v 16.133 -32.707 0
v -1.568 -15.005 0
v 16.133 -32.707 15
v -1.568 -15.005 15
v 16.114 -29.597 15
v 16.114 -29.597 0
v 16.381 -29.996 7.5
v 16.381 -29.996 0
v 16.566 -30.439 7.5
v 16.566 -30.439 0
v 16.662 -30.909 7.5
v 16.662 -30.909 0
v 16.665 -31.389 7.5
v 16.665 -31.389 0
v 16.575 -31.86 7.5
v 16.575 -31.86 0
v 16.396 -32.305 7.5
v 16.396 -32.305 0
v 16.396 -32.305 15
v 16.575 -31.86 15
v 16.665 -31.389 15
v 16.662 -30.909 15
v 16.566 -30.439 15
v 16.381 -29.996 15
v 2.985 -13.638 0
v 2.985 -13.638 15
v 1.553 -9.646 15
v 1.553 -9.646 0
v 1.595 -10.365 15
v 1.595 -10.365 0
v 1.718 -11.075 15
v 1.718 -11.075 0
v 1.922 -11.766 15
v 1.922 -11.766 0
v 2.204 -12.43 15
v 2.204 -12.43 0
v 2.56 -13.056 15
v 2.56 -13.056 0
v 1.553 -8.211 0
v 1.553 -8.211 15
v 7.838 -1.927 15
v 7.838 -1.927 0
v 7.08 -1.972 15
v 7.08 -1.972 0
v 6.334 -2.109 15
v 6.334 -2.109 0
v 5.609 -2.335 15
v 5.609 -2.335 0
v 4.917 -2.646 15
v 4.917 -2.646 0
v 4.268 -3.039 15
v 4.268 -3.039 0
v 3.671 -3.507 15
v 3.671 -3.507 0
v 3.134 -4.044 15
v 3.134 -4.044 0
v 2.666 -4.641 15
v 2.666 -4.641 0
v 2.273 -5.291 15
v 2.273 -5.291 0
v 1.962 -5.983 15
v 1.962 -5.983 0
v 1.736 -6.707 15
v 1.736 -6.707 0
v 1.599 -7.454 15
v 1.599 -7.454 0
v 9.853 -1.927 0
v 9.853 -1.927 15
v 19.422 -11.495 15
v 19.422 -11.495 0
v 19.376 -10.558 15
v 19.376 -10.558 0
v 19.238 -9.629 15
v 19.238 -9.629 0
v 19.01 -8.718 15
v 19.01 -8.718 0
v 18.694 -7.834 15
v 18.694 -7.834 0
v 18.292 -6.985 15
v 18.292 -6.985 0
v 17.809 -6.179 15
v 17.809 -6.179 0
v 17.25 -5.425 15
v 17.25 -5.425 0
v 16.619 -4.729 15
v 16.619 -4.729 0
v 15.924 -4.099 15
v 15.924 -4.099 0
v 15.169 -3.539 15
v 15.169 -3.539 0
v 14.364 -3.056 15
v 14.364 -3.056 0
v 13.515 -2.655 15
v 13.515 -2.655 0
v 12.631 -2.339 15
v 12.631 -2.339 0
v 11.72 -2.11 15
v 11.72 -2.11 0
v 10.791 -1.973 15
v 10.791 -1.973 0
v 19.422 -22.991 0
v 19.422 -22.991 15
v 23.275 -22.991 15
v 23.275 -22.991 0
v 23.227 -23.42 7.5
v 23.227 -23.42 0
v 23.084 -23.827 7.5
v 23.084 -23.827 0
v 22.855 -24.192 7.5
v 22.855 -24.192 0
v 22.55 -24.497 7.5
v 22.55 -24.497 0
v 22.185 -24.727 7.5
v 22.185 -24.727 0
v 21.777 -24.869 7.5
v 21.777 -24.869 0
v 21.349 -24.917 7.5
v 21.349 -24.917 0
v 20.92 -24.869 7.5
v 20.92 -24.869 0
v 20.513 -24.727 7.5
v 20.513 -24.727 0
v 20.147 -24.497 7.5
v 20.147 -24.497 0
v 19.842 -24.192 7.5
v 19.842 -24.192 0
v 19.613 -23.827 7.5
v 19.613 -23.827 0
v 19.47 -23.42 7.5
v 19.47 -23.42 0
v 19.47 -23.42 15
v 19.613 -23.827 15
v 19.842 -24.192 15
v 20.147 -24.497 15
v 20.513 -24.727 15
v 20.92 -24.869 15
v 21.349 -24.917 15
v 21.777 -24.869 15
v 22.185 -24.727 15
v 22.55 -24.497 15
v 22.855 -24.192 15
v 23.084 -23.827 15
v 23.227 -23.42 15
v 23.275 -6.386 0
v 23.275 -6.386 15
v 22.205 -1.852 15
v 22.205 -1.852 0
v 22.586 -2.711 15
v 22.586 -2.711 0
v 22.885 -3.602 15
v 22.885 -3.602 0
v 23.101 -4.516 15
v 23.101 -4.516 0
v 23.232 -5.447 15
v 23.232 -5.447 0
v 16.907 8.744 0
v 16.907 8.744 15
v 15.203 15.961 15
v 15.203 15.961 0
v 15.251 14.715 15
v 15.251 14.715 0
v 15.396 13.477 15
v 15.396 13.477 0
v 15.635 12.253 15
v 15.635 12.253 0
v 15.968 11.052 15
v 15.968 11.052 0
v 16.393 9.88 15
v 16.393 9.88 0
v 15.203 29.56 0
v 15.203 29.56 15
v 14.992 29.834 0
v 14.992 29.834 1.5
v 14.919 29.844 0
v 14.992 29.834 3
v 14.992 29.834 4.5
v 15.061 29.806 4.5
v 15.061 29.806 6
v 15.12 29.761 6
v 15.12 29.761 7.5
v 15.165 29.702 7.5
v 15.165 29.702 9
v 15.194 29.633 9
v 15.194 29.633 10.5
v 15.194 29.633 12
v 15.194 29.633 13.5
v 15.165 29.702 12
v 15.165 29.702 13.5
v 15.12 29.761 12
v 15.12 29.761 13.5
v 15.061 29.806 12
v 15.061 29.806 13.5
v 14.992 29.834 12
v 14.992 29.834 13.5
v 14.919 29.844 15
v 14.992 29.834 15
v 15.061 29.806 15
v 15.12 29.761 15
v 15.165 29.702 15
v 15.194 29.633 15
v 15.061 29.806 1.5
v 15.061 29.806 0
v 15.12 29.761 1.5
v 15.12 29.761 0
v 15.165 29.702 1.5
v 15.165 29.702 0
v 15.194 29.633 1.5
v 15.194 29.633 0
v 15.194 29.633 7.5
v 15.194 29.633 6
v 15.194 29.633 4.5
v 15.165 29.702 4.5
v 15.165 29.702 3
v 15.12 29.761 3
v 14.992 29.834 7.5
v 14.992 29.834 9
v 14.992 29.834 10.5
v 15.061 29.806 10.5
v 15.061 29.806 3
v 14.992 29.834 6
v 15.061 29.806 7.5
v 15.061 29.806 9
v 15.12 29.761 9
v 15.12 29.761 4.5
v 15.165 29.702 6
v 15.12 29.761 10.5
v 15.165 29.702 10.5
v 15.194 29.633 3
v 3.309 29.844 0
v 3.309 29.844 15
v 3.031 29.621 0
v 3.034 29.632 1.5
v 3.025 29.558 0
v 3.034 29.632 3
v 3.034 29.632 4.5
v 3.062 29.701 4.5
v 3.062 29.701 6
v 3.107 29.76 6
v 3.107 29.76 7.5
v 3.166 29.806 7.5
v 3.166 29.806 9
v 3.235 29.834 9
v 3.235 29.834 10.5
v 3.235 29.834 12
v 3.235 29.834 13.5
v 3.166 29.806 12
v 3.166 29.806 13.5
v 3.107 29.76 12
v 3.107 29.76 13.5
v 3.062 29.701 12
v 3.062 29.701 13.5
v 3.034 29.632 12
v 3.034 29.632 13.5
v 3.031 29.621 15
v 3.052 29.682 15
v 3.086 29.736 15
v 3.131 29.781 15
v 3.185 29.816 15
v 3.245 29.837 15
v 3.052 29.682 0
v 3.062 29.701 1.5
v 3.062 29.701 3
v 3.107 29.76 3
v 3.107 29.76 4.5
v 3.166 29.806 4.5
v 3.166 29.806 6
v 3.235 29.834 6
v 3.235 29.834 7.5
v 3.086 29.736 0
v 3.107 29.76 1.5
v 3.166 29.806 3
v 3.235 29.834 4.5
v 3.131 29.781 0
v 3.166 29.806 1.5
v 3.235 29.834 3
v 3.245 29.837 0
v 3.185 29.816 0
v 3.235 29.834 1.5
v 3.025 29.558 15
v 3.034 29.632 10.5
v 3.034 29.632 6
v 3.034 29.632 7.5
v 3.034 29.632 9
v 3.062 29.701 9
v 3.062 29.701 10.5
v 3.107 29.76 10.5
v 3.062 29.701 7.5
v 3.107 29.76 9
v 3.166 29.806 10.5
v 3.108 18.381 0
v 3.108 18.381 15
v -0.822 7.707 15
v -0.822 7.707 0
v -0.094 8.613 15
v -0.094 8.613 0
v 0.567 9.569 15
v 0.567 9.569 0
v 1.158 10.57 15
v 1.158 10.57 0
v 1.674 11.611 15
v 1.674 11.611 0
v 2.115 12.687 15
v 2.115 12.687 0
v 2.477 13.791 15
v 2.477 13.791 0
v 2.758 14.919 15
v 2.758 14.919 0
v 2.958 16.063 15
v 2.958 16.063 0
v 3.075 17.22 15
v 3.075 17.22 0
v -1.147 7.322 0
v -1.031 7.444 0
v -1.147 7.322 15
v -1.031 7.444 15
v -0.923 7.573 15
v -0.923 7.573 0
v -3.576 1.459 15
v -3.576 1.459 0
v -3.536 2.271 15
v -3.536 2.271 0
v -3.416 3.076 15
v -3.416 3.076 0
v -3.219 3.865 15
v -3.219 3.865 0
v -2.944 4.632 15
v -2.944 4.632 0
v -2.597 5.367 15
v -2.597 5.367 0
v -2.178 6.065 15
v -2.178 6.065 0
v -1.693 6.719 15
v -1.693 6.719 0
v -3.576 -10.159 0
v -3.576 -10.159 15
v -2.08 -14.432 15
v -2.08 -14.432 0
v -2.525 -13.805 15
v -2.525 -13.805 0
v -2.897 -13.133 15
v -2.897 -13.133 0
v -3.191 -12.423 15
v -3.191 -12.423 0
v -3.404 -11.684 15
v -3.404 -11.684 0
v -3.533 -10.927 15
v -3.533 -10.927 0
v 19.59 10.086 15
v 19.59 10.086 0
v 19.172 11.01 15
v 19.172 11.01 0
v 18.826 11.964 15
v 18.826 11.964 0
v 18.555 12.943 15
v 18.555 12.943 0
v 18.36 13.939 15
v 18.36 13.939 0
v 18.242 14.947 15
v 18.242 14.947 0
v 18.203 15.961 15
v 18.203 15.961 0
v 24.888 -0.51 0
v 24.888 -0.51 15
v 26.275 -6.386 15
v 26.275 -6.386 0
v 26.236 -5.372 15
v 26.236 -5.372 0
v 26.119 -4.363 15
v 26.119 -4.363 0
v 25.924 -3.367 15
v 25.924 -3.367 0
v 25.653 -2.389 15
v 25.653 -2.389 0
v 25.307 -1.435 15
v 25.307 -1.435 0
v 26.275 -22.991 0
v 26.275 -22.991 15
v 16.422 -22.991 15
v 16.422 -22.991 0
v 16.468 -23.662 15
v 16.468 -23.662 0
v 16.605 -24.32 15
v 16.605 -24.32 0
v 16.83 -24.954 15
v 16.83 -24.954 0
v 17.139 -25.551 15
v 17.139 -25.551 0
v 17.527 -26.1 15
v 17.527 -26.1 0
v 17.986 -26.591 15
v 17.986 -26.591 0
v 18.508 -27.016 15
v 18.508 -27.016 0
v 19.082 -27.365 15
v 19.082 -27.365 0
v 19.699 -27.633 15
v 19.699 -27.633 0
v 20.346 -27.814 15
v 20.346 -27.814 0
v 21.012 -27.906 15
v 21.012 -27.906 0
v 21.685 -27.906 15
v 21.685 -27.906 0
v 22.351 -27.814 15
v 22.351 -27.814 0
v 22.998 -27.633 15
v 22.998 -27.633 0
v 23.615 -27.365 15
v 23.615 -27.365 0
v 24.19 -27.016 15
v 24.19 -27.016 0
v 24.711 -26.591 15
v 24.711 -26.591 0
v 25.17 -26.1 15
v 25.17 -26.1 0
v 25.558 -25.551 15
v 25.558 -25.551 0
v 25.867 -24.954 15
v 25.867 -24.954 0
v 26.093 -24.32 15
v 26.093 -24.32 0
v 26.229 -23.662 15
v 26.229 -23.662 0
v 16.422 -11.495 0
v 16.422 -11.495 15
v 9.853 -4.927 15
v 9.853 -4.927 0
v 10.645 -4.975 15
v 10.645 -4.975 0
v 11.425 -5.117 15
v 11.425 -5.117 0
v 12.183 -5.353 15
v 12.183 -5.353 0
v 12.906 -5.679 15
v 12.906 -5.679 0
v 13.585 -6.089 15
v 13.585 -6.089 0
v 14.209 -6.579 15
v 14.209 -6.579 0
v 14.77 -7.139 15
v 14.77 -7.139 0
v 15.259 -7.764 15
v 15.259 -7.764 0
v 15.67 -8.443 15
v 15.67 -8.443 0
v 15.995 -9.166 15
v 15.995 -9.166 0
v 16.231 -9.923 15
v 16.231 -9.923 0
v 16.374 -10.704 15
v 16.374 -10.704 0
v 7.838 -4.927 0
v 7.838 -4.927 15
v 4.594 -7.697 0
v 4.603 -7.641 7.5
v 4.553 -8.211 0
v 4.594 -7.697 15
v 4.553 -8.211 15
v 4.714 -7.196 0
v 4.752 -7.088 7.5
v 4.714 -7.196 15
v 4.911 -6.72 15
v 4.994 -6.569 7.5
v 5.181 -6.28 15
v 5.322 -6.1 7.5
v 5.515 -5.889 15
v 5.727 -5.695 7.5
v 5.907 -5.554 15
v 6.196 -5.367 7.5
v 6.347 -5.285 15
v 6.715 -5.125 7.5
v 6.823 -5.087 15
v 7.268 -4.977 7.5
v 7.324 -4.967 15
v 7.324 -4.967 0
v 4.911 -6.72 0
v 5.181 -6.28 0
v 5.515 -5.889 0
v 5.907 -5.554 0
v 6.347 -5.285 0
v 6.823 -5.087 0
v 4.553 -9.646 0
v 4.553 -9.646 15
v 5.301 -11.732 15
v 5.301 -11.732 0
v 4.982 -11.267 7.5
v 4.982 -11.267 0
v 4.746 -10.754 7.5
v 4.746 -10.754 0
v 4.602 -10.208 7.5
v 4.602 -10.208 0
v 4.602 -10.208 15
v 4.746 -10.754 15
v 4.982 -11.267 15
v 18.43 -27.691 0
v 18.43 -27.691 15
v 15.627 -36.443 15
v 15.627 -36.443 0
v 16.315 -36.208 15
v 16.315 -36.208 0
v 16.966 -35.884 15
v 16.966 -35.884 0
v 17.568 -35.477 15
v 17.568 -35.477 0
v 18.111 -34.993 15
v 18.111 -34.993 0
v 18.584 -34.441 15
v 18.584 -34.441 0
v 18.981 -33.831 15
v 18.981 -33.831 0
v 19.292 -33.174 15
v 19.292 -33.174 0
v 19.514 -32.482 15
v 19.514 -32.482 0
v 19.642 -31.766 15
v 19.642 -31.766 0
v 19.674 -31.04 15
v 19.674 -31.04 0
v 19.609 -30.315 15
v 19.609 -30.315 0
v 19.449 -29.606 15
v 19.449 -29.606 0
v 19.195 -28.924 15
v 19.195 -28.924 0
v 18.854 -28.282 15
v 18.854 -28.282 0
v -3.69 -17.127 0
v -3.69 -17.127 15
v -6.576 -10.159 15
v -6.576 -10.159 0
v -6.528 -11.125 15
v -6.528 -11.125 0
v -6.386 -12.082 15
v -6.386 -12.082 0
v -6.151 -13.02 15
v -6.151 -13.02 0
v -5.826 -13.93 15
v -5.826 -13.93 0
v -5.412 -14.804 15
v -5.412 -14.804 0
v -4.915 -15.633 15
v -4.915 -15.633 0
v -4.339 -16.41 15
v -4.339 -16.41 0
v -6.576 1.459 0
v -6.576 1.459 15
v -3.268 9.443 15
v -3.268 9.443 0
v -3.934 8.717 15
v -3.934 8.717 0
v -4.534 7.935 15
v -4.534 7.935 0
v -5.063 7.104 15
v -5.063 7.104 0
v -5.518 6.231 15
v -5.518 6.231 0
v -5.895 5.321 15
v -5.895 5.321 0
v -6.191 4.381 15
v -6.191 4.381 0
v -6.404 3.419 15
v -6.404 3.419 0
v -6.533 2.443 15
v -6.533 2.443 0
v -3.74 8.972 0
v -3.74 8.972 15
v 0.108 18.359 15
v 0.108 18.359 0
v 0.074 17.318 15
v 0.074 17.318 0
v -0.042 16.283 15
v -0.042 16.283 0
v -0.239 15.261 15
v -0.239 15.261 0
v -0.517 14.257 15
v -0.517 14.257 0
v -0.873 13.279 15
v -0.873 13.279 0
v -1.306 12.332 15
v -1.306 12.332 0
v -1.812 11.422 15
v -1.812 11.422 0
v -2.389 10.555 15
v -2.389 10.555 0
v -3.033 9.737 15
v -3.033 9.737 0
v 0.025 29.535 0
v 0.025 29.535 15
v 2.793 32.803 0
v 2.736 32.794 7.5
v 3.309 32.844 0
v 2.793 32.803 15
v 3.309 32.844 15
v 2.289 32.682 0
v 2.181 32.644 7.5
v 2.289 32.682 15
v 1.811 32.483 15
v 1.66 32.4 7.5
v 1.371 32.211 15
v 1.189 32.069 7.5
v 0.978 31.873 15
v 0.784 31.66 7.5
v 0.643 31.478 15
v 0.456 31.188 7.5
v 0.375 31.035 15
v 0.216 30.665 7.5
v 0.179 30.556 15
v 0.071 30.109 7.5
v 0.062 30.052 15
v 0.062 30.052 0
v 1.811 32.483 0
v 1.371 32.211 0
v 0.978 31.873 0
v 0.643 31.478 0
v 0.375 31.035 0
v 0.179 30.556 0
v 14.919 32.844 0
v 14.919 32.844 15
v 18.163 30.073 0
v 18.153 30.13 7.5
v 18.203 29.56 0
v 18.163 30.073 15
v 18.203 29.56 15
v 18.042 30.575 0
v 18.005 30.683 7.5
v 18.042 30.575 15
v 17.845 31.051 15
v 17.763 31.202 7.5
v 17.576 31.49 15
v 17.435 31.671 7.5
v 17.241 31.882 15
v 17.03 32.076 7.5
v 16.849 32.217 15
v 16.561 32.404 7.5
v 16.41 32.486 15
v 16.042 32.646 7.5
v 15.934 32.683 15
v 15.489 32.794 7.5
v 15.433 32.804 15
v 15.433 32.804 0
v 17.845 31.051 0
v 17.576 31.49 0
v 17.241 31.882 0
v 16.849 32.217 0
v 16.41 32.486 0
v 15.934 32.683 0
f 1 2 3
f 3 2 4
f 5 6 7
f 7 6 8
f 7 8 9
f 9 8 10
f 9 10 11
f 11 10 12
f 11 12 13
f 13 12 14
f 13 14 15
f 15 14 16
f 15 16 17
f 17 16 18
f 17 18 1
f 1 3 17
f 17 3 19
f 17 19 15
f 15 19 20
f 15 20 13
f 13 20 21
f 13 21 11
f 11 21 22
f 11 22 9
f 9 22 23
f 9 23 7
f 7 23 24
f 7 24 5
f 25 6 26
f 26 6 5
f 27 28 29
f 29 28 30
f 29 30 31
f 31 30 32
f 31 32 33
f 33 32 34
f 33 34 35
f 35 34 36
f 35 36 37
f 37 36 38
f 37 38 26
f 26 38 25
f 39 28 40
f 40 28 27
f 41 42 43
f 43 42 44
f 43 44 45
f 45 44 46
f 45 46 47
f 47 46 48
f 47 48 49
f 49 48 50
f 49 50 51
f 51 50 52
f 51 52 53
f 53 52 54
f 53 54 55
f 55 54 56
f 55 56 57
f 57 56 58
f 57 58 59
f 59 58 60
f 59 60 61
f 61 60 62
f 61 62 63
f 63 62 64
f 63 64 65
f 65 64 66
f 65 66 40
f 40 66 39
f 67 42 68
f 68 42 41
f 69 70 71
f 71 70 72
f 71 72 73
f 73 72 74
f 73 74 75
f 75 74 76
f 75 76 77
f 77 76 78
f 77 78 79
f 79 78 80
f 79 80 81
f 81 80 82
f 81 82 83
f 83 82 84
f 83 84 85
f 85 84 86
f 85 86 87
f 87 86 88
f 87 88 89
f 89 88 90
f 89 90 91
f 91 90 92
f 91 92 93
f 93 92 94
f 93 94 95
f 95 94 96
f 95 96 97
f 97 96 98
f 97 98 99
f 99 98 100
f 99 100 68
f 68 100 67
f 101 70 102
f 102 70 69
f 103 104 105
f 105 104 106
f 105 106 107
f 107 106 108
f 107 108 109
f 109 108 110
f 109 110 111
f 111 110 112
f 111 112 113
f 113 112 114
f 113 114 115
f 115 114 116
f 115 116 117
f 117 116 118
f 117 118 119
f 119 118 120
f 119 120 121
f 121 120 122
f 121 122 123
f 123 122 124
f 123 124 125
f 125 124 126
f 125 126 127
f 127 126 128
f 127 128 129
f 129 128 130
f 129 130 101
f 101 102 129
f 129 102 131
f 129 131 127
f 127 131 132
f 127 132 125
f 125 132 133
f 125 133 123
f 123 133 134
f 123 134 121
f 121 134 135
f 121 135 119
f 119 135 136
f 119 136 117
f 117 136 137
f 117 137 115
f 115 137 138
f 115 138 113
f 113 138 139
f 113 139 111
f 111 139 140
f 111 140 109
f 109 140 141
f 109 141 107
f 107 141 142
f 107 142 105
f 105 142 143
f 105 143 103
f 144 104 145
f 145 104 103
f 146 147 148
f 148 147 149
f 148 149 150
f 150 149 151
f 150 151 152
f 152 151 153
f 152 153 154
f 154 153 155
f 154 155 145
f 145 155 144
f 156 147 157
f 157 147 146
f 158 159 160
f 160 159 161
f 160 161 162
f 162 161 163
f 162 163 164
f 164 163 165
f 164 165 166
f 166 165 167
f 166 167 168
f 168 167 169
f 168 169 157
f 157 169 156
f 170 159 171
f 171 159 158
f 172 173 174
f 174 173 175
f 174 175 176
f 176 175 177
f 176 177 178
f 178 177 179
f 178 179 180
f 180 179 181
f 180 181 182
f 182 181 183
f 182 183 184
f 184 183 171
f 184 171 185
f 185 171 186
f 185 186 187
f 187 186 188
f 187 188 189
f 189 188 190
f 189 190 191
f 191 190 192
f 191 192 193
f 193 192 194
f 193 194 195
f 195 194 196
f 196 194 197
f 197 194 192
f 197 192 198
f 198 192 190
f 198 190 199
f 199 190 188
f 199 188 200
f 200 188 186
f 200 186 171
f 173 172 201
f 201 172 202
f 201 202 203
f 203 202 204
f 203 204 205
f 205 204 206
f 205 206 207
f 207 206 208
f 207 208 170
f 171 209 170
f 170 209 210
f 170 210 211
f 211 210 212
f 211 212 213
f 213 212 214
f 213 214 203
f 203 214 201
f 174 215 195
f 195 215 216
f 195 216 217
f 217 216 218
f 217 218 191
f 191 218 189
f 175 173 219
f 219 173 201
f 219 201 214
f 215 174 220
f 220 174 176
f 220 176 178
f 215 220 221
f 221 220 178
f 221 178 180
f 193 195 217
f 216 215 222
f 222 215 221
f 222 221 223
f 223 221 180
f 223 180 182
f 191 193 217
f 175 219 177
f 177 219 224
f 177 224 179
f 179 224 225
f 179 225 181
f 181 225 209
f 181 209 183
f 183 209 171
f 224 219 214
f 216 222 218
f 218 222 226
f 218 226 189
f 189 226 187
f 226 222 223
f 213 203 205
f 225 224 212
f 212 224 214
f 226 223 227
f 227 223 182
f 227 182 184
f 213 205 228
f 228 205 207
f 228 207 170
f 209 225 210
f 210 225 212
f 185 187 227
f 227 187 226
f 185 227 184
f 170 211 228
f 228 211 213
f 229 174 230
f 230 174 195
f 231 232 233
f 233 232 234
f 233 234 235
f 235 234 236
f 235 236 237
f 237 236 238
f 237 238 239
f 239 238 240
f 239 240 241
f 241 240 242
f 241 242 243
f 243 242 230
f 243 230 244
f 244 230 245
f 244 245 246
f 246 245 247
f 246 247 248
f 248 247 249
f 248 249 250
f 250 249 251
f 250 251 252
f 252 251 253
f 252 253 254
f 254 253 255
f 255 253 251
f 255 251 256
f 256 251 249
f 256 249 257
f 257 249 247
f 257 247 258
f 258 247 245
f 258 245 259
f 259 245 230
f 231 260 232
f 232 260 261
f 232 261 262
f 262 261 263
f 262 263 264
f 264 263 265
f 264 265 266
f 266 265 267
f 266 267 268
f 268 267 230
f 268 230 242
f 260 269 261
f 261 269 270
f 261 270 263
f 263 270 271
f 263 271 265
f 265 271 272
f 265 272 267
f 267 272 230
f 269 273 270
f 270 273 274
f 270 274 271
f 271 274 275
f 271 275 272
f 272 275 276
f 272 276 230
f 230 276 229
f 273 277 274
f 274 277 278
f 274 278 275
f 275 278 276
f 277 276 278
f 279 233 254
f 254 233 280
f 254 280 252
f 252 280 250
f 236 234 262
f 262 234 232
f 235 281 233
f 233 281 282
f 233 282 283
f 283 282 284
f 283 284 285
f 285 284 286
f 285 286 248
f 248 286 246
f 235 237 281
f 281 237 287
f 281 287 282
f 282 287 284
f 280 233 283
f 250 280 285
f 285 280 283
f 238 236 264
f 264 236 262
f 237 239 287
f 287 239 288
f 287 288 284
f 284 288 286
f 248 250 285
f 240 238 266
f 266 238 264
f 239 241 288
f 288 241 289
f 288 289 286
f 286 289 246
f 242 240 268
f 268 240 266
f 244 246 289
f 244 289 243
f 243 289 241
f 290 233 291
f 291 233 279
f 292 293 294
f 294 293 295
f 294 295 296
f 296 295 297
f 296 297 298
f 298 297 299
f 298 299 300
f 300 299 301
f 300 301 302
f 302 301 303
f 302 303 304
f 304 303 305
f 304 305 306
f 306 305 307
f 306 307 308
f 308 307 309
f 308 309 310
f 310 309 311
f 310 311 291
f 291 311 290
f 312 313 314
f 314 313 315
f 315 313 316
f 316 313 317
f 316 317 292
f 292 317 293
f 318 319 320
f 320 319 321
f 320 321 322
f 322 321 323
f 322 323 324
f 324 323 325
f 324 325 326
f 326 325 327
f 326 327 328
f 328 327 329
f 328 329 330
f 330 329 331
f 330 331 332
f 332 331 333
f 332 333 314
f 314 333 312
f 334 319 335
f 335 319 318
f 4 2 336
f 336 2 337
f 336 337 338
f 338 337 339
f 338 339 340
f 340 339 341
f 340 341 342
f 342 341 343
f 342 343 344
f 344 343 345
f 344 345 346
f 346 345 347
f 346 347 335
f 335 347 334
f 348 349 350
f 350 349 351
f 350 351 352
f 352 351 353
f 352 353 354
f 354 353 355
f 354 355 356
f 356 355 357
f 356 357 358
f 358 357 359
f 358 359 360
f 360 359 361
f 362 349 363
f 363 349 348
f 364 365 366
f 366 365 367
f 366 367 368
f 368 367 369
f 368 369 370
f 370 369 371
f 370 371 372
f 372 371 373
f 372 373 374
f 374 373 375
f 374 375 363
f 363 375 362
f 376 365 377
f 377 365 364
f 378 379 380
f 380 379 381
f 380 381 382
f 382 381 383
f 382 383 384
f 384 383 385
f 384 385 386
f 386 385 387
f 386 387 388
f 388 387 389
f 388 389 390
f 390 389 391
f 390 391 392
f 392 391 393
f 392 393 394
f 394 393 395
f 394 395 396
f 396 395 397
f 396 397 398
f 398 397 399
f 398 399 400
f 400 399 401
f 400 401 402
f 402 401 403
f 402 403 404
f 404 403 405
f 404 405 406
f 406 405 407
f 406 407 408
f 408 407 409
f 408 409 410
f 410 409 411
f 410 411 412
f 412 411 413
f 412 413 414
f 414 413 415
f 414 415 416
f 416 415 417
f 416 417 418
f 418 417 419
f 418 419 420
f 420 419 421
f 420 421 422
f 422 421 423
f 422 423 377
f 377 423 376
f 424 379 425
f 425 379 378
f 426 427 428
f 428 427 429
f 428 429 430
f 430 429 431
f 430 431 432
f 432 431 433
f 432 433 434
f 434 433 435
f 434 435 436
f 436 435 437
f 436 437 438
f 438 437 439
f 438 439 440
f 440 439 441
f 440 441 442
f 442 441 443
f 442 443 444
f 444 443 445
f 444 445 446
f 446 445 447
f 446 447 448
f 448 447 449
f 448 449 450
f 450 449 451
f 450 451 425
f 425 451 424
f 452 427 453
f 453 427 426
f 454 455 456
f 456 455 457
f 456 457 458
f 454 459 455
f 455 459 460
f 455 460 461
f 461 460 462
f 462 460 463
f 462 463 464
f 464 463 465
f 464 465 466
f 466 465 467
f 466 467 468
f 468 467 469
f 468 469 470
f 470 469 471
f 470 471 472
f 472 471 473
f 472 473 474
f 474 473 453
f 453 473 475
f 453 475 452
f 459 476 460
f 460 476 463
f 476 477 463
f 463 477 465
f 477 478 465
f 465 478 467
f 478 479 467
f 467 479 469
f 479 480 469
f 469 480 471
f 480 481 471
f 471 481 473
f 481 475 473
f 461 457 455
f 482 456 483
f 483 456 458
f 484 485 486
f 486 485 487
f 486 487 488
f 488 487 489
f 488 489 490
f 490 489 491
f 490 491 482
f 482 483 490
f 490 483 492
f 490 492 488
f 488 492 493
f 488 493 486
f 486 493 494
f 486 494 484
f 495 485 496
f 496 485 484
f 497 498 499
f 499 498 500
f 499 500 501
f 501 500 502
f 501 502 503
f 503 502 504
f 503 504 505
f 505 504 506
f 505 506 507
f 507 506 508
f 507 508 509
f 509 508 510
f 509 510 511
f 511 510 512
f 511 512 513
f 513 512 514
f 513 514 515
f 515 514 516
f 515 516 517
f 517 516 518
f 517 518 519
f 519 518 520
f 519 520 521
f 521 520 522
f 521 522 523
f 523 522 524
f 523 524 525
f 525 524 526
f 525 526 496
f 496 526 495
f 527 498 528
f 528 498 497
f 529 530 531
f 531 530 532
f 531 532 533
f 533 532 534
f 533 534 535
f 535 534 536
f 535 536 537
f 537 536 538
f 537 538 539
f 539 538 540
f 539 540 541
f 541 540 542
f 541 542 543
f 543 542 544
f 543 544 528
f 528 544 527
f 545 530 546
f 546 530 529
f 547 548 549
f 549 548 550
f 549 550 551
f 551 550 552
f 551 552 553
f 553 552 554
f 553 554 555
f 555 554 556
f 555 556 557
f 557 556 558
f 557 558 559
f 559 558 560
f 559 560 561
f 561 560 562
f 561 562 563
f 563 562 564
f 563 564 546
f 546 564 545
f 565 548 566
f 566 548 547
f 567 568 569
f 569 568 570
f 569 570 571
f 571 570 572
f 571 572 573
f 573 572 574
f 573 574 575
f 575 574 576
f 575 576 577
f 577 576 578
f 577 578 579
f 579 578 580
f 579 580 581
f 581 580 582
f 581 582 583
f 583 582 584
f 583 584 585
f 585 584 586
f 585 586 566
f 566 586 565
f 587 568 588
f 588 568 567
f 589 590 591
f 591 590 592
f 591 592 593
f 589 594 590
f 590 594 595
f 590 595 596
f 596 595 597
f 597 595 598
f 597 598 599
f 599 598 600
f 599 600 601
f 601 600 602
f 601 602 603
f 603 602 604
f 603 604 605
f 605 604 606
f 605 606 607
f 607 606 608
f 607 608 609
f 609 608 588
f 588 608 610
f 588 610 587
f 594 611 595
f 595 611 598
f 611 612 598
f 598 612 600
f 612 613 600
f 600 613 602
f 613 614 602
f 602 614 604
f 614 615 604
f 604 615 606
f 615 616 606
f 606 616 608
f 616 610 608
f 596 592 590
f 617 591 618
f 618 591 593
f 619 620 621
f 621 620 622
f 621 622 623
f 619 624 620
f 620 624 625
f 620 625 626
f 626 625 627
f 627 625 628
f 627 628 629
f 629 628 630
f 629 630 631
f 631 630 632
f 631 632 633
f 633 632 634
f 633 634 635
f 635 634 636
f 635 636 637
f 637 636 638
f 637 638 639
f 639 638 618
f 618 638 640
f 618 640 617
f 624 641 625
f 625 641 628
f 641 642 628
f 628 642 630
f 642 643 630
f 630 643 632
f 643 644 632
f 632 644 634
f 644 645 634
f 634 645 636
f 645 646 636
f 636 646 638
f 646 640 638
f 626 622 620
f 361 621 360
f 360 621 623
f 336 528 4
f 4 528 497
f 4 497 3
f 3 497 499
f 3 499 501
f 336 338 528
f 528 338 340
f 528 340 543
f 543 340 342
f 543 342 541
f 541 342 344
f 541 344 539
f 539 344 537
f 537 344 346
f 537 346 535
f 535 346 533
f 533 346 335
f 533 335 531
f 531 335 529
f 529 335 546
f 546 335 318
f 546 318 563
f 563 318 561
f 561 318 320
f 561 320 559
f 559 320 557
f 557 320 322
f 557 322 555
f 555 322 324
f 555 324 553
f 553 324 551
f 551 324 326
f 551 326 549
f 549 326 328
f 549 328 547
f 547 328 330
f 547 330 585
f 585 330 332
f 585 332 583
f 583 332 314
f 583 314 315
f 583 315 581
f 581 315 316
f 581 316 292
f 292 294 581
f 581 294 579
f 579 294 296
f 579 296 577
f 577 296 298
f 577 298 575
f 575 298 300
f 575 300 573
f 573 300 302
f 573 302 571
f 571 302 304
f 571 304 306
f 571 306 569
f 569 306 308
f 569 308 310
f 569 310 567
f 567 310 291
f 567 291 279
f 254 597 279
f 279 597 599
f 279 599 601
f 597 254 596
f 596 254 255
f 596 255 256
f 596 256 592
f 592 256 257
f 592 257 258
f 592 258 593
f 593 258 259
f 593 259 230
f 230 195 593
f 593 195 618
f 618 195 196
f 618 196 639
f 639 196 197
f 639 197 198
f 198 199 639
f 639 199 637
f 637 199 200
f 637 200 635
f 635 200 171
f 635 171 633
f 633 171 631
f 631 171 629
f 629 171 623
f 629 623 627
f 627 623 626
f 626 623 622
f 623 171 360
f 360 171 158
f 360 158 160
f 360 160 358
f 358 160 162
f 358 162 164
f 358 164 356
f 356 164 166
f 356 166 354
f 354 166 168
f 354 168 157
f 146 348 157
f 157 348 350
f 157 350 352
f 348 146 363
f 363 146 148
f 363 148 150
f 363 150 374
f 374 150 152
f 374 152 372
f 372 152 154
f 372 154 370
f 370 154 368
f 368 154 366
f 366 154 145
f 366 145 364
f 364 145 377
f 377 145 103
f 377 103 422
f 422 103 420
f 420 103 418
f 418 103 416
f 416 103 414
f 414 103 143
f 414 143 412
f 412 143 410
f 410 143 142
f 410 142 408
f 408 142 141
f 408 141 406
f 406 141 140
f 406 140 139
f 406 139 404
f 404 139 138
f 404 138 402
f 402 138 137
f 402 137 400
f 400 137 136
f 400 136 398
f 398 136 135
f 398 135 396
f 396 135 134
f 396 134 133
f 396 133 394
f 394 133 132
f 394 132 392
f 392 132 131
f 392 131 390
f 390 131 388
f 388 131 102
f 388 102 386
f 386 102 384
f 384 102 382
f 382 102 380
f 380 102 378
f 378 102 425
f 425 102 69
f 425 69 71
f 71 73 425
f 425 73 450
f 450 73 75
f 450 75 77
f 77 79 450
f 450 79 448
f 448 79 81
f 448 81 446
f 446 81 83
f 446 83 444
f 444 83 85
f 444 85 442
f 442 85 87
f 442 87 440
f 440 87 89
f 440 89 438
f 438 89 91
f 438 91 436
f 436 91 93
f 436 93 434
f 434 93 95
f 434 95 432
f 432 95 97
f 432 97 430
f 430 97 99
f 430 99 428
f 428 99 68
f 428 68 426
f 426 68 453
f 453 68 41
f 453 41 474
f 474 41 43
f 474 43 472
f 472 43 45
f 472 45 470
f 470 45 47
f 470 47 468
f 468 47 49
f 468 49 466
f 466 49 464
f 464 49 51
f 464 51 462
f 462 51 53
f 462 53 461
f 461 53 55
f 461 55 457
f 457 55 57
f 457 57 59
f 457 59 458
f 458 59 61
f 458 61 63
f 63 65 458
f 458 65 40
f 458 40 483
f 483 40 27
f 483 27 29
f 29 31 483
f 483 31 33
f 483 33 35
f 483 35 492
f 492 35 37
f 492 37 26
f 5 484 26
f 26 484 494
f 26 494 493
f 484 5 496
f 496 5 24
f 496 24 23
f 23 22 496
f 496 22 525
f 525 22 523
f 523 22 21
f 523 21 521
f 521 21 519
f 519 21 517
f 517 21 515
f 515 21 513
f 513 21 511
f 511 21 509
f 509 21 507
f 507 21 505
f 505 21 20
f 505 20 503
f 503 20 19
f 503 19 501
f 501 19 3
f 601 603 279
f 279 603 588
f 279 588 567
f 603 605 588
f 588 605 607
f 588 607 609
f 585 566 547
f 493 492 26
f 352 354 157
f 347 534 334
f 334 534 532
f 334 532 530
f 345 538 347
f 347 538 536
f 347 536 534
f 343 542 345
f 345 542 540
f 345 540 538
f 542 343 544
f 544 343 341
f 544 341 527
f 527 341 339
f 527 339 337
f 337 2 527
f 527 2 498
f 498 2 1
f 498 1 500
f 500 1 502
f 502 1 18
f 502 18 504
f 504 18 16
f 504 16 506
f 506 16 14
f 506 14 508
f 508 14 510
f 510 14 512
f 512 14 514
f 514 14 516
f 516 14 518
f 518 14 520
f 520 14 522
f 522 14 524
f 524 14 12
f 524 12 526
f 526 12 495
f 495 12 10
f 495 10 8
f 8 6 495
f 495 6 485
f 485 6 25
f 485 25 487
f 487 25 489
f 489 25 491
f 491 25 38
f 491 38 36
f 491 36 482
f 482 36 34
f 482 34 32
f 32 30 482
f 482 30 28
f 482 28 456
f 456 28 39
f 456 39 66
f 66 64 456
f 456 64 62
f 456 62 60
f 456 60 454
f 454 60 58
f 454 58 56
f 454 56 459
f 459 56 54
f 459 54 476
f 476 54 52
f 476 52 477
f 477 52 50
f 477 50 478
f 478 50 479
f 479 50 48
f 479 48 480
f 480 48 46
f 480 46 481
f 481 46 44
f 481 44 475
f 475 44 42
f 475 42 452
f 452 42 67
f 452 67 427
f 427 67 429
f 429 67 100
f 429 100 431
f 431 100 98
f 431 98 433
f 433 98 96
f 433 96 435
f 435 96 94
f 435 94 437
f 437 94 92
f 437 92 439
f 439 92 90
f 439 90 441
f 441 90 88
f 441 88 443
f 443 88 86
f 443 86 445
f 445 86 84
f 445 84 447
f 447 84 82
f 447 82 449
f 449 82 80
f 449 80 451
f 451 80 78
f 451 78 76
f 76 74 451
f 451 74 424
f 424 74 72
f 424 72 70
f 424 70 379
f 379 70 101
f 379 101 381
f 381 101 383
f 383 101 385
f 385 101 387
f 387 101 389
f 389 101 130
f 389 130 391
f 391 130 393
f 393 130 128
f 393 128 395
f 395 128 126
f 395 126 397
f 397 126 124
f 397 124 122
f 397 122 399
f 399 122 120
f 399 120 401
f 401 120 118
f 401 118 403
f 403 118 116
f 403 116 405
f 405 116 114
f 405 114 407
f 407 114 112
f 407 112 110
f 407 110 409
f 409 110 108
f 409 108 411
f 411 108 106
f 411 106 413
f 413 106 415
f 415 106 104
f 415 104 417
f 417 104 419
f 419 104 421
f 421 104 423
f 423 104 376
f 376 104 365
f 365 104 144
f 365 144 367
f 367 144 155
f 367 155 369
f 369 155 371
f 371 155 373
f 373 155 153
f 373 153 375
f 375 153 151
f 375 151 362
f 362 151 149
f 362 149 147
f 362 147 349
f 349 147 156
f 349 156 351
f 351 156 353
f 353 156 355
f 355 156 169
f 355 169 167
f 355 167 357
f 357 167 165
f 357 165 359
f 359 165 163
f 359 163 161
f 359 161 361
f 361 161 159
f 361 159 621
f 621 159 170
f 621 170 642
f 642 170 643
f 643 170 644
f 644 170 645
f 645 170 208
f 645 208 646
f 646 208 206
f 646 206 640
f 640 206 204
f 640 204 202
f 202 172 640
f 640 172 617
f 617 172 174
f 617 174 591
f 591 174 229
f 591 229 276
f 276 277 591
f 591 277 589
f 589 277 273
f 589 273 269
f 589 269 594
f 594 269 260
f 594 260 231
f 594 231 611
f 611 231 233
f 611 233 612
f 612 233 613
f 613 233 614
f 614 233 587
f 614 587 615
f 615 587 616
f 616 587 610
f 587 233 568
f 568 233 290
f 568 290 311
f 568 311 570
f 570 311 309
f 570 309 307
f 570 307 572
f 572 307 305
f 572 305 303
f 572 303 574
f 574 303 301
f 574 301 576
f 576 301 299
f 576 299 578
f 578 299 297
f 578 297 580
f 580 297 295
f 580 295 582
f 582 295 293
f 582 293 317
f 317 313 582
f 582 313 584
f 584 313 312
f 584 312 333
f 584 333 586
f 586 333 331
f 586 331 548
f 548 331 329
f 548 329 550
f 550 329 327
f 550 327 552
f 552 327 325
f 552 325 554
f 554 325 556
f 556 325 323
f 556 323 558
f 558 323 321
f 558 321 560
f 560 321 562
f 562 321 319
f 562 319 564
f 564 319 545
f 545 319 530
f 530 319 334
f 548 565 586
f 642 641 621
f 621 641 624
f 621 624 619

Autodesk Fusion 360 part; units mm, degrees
sketch "Sketch1" plane through (0, 0, 0) normal (0, 0, 1) x (1, 0, 0)
  line L0 (3.309, 32.844) -> (14.9188, 32.844)
  line L1 (26.2752, -6.3858) -> (26.2752, -22.9908)
  arc A0 (16.422, -22.9908) -> (26.2752, -22.9908) centre (21.3486, -22.9908) ccw
  line L2 (16.422, -22.9908) -> (16.422, -11.4954)
  line L3 (5.3015, -11.7323) -> (18.4305, -27.6914)
  arc A1 (15.6271, -36.4434) -> (18.4305, -27.6914) centre (14.2091, -31.1642) ccw
  line L4 (15.6271, -36.4434) -> (-3.6897, -17.1266)
  line L5 (-6.5756, -10.1593) -> (-6.5756, 1.4585)
  line L6 (-3.2683, 9.443) -> (-3.7397, 8.9716)
  line L7 (0.1079, 18.3592) -> (0.0246, 29.5352)
  line L8 (18.2032, 29.5596) -> (18.2032, 15.961)
  line L9 (19.5902, 10.0856) -> (24.8883, -0.5105)
  arc A2 (-3.2683, 9.443) -> (-6.5756, 1.4585) centre (4.7161, 1.4585) ccw
  line L10 (9.8532, -4.9266) -> (7.8379, -4.9266)
  line L11 (4.5535, -8.211) -> (4.5535, -9.6457)
  arc A3 (7.8379, -4.9266) -> (4.5535, -8.211) centre (7.8379, -8.211) ccw
  arc A4 (4.5535, -9.6457) -> (5.3015, -11.7323) centre (7.8379, -9.6457) ccw
  arc A5 (16.422, -11.4954) -> (9.8532, -4.9266) centre (9.8532, -11.4954) ccw
  arc A6 (-6.5756, -10.1593) -> (-3.6897, -17.1266) centre (3.2776, -10.1593) ccw
  arc A7 (26.2752, -6.3858) -> (24.8883, -0.5105) centre (13.1376, -6.3858) ccw
  arc A8 (18.2032, 15.961) -> (19.5902, 10.0856) centre (31.3409, 15.961) ccw
  arc A9 (-3.7397, 8.9716) -> (0.1079, 18.3592) centre (-13.0294, 18.2613) ccw
  arc A10 (3.309, 32.844) -> (0.0246, 29.5352) centre (3.309, 29.5596) ccw
  arc A11 (18.2032, 29.5596) -> (14.9188, 32.844) centre (14.9188, 29.5596) ccw
  arc A12 (-1.147, 7.3217) -> (-3.5756, 1.4585) centre (4.7161, 1.4585) ccw
  line L12 (-3.5756, -10.1593) -> (-3.5756, 1.4585)
  arc A13 (-3.5756, -10.1593) -> (-1.5683, -15.0053) centre (3.2776, -10.1593) ccw
  line L13 (16.1333, -32.7069) -> (-1.5683, -15.0053)
  arc A14 (16.1333, -32.7069) -> (16.1137, -29.5973) centre (14.2091, -31.1642) ccw
  line L14 (2.9847, -13.6383) -> (16.1137, -29.5973)
  arc A15 (1.5535, -9.6457) -> (2.9847, -13.6383) centre (7.8379, -9.6457) ccw
  line L15 (1.5535, -8.211) -> (1.5535, -9.6457)
  arc A16 (7.8379, -1.9266) -> (1.5535, -8.211) centre (7.8379, -8.211) ccw
  line L16 (9.8532, -1.9266) -> (7.8379, -1.9266)
  arc A17 (19.422, -11.4954) -> (9.8532, -1.9266) centre (9.8532, -11.4954) ccw
  line L17 (19.422, -22.9908) -> (19.422, -11.4954)
  arc A18 (19.422, -22.9908) -> (23.2752, -22.9908) centre (21.3486, -22.9908) ccw
  line L18 (23.2752, -6.3858) -> (23.2752, -22.9908)
  arc A19 (23.2752, -6.3858) -> (22.205, -1.8521) centre (13.1376, -6.3858) ccw
  line L19 (16.9069, 8.744) -> (22.205, -1.8521)
  arc A20 (15.2032, 15.961) -> (16.9069, 8.744) centre (31.3409, 15.961) ccw
  line L20 (15.2032, 29.5596) -> (15.2032, 15.961)
  arc A21 (15.2032, 29.5596) -> (14.9188, 29.844) centre (14.9188, 29.5596) ccw
  line L21 (3.309, 29.844) -> (14.9188, 29.844)
  arc A22 (3.309, 29.844) -> (3.0246, 29.5575) centre (3.309, 29.5596) ccw
  line L22 (3.1078, 18.3815) -> (3.0246, 29.5575)
  arc A23 (-0.8215, 7.7071) -> (3.1078, 18.3815) centre (-13.0294, 18.2613) ccw
  arc A24 (-1.147, 7.3217) -> (-0.8215, 7.7071) centre (-3.2683, 9.443) ccw
  dimension "d13" = 3
extrude "Extrude1" add sketch "Sketch1" along normal blind 15
sketch "Sketch2" plane through (0, 0, 0) normal (0, 1, 0) x (1, 0, 0)
